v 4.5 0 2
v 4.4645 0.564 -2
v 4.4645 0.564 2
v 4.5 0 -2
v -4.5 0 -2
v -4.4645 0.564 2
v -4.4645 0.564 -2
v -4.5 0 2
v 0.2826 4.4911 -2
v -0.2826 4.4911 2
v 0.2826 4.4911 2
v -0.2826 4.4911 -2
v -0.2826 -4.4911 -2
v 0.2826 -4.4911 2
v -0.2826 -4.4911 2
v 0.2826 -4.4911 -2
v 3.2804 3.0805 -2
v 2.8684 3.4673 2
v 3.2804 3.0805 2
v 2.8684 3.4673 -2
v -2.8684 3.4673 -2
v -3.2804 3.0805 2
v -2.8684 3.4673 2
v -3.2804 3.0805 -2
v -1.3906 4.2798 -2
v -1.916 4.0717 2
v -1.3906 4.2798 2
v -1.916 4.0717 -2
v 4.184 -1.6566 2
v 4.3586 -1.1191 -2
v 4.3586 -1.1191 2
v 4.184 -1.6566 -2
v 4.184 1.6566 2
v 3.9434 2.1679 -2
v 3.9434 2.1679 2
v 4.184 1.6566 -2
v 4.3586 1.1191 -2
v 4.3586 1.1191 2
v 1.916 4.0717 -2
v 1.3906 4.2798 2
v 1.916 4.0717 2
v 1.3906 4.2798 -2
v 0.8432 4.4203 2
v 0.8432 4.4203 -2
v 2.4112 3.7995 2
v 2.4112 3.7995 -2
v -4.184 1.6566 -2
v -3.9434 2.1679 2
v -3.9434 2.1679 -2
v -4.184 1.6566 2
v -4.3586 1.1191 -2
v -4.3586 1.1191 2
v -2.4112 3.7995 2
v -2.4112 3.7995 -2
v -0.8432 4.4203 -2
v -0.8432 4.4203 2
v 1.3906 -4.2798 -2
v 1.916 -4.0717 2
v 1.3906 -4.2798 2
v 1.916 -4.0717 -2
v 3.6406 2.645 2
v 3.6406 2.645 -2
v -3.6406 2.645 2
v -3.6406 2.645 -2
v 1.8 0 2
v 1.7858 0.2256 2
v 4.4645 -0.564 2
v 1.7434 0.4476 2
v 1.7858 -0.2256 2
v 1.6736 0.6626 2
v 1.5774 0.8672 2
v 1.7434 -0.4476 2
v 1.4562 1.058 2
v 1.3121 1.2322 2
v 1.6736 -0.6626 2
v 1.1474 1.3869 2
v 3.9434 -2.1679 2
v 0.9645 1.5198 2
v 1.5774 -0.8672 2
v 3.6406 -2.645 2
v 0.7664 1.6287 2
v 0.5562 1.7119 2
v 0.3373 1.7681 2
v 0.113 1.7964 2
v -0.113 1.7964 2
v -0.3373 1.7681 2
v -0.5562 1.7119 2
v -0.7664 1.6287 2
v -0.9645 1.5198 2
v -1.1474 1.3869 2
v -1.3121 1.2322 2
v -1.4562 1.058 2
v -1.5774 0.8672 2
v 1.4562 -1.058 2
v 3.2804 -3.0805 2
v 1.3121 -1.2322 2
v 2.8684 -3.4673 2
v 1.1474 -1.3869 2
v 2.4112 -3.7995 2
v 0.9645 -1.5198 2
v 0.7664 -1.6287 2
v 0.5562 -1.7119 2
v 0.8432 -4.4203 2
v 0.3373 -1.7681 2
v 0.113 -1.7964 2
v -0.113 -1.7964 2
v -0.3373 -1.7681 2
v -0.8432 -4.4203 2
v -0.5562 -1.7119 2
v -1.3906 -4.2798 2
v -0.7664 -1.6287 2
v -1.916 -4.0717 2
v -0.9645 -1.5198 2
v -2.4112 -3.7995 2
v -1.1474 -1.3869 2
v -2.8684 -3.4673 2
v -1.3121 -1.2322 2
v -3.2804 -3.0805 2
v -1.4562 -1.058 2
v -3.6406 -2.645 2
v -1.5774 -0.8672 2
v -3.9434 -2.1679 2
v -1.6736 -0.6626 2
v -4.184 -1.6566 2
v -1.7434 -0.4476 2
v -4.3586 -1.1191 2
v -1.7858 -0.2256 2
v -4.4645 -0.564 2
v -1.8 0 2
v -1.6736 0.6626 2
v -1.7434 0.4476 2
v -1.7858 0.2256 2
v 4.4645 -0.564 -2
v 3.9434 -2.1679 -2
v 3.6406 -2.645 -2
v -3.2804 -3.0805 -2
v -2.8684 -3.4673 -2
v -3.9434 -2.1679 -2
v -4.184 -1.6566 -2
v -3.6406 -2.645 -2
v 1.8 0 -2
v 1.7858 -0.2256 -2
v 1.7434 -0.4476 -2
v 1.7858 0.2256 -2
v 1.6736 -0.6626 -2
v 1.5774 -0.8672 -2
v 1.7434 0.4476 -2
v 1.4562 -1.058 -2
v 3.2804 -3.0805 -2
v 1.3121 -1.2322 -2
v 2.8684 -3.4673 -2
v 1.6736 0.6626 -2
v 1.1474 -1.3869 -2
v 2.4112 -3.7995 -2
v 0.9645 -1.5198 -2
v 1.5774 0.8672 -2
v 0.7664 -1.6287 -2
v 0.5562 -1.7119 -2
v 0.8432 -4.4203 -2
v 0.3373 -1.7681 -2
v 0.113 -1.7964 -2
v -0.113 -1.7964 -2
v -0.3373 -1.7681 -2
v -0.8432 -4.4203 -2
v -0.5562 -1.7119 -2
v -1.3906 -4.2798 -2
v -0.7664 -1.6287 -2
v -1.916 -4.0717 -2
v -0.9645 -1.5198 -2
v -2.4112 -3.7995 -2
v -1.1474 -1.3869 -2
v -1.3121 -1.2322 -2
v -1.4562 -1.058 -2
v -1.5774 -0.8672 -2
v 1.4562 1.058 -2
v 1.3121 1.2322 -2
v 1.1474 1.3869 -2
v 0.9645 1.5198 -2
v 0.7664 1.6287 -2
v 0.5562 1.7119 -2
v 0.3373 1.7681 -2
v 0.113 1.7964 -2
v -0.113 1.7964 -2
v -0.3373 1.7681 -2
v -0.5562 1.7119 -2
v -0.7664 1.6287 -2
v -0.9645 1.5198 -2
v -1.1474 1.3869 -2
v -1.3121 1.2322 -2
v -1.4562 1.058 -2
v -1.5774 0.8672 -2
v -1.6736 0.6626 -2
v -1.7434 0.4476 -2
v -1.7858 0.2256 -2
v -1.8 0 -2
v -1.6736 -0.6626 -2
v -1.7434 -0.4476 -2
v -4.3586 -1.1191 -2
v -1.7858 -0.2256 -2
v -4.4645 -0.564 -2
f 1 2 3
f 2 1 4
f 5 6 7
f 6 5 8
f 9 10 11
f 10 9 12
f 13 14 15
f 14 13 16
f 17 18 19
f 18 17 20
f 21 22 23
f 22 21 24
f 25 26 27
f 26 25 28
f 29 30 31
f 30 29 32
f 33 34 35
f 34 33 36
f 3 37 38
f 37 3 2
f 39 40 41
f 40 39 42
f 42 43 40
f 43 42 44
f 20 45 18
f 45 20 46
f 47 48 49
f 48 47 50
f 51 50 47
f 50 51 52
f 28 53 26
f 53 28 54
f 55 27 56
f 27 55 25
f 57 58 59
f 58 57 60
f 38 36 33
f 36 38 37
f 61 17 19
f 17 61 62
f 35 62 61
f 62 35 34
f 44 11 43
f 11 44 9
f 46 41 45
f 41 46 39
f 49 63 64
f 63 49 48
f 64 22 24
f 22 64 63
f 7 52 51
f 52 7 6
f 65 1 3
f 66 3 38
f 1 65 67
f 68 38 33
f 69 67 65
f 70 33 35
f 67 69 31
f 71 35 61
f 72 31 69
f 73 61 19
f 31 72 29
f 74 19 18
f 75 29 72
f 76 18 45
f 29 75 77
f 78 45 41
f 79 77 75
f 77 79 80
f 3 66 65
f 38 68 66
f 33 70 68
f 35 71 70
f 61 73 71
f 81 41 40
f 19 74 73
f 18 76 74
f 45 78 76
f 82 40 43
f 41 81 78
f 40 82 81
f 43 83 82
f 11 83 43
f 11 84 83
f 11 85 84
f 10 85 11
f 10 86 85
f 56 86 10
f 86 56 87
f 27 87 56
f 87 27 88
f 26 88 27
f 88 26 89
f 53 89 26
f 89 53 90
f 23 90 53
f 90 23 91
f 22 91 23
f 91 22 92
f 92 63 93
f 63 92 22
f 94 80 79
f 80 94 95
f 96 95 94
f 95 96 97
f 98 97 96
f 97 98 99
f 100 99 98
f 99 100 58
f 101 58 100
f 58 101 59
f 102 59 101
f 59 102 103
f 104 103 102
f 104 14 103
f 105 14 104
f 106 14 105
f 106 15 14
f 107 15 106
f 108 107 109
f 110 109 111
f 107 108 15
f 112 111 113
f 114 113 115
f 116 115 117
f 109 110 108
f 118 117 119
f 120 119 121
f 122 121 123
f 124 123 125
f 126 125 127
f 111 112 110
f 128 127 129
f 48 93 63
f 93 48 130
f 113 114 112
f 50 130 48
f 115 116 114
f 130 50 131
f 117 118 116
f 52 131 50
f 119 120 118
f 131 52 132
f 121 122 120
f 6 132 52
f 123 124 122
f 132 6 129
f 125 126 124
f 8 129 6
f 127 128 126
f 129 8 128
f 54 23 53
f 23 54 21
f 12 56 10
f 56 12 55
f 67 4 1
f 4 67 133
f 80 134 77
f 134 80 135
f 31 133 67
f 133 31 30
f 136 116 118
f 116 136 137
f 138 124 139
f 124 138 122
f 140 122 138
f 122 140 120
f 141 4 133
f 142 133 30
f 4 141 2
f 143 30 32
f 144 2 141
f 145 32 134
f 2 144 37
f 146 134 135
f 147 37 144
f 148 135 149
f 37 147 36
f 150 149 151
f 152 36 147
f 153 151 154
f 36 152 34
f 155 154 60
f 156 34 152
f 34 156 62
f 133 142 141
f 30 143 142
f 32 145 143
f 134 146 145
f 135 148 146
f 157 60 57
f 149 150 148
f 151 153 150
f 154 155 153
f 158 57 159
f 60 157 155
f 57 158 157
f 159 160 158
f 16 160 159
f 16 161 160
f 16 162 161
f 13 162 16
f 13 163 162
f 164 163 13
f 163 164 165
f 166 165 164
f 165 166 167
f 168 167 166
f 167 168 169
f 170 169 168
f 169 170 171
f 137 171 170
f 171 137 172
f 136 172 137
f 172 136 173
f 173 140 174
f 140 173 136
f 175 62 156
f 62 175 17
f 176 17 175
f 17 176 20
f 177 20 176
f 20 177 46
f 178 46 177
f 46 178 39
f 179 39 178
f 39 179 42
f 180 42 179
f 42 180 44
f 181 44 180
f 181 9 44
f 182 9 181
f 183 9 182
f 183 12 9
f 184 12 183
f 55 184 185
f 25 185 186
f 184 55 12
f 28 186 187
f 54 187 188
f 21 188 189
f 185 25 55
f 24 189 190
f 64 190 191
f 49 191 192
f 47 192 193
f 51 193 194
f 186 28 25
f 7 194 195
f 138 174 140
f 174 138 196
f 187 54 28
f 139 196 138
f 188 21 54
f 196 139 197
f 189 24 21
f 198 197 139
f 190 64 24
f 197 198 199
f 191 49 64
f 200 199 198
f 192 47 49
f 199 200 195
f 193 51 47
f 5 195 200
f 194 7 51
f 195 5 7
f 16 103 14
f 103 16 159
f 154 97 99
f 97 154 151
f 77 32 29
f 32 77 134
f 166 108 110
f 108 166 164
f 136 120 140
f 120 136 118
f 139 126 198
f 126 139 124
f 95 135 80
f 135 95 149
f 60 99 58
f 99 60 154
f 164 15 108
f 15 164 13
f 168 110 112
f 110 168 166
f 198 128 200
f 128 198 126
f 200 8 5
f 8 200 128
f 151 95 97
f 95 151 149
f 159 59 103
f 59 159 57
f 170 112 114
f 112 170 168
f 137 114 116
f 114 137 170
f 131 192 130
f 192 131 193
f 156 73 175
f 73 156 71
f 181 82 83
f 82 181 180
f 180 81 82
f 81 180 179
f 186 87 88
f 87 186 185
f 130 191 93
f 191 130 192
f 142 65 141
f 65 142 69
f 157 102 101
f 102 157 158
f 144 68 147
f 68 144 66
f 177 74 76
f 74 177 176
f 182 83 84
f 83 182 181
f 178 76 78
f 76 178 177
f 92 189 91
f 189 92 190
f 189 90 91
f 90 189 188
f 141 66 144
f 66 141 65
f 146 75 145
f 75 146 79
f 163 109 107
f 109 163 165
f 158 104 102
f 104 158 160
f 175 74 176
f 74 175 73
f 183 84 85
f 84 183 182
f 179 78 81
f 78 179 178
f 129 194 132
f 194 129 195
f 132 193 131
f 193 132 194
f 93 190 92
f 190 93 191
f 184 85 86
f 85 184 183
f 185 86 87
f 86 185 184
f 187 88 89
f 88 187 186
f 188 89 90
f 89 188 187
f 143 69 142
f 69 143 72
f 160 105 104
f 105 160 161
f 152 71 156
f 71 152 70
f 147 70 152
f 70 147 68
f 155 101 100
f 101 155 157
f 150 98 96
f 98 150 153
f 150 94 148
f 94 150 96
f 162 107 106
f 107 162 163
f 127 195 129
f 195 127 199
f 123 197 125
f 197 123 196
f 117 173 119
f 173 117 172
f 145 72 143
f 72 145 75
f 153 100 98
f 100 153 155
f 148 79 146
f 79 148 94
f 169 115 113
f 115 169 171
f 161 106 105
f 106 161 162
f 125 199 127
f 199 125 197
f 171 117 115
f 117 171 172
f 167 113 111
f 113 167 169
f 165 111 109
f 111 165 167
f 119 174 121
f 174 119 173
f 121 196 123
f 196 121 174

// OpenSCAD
$fn = 50;


difference() {
	union() {
		translate(v = [0, 0, -2.0000000000]) {
			cylinder(h = 4, r = 4.5000000000);
		}
	}
	union() {
		translate(v = [0, 0, -100.0000000000]) {
			cylinder(h = 200, r = 1.8000000000);
		}
	}
}
